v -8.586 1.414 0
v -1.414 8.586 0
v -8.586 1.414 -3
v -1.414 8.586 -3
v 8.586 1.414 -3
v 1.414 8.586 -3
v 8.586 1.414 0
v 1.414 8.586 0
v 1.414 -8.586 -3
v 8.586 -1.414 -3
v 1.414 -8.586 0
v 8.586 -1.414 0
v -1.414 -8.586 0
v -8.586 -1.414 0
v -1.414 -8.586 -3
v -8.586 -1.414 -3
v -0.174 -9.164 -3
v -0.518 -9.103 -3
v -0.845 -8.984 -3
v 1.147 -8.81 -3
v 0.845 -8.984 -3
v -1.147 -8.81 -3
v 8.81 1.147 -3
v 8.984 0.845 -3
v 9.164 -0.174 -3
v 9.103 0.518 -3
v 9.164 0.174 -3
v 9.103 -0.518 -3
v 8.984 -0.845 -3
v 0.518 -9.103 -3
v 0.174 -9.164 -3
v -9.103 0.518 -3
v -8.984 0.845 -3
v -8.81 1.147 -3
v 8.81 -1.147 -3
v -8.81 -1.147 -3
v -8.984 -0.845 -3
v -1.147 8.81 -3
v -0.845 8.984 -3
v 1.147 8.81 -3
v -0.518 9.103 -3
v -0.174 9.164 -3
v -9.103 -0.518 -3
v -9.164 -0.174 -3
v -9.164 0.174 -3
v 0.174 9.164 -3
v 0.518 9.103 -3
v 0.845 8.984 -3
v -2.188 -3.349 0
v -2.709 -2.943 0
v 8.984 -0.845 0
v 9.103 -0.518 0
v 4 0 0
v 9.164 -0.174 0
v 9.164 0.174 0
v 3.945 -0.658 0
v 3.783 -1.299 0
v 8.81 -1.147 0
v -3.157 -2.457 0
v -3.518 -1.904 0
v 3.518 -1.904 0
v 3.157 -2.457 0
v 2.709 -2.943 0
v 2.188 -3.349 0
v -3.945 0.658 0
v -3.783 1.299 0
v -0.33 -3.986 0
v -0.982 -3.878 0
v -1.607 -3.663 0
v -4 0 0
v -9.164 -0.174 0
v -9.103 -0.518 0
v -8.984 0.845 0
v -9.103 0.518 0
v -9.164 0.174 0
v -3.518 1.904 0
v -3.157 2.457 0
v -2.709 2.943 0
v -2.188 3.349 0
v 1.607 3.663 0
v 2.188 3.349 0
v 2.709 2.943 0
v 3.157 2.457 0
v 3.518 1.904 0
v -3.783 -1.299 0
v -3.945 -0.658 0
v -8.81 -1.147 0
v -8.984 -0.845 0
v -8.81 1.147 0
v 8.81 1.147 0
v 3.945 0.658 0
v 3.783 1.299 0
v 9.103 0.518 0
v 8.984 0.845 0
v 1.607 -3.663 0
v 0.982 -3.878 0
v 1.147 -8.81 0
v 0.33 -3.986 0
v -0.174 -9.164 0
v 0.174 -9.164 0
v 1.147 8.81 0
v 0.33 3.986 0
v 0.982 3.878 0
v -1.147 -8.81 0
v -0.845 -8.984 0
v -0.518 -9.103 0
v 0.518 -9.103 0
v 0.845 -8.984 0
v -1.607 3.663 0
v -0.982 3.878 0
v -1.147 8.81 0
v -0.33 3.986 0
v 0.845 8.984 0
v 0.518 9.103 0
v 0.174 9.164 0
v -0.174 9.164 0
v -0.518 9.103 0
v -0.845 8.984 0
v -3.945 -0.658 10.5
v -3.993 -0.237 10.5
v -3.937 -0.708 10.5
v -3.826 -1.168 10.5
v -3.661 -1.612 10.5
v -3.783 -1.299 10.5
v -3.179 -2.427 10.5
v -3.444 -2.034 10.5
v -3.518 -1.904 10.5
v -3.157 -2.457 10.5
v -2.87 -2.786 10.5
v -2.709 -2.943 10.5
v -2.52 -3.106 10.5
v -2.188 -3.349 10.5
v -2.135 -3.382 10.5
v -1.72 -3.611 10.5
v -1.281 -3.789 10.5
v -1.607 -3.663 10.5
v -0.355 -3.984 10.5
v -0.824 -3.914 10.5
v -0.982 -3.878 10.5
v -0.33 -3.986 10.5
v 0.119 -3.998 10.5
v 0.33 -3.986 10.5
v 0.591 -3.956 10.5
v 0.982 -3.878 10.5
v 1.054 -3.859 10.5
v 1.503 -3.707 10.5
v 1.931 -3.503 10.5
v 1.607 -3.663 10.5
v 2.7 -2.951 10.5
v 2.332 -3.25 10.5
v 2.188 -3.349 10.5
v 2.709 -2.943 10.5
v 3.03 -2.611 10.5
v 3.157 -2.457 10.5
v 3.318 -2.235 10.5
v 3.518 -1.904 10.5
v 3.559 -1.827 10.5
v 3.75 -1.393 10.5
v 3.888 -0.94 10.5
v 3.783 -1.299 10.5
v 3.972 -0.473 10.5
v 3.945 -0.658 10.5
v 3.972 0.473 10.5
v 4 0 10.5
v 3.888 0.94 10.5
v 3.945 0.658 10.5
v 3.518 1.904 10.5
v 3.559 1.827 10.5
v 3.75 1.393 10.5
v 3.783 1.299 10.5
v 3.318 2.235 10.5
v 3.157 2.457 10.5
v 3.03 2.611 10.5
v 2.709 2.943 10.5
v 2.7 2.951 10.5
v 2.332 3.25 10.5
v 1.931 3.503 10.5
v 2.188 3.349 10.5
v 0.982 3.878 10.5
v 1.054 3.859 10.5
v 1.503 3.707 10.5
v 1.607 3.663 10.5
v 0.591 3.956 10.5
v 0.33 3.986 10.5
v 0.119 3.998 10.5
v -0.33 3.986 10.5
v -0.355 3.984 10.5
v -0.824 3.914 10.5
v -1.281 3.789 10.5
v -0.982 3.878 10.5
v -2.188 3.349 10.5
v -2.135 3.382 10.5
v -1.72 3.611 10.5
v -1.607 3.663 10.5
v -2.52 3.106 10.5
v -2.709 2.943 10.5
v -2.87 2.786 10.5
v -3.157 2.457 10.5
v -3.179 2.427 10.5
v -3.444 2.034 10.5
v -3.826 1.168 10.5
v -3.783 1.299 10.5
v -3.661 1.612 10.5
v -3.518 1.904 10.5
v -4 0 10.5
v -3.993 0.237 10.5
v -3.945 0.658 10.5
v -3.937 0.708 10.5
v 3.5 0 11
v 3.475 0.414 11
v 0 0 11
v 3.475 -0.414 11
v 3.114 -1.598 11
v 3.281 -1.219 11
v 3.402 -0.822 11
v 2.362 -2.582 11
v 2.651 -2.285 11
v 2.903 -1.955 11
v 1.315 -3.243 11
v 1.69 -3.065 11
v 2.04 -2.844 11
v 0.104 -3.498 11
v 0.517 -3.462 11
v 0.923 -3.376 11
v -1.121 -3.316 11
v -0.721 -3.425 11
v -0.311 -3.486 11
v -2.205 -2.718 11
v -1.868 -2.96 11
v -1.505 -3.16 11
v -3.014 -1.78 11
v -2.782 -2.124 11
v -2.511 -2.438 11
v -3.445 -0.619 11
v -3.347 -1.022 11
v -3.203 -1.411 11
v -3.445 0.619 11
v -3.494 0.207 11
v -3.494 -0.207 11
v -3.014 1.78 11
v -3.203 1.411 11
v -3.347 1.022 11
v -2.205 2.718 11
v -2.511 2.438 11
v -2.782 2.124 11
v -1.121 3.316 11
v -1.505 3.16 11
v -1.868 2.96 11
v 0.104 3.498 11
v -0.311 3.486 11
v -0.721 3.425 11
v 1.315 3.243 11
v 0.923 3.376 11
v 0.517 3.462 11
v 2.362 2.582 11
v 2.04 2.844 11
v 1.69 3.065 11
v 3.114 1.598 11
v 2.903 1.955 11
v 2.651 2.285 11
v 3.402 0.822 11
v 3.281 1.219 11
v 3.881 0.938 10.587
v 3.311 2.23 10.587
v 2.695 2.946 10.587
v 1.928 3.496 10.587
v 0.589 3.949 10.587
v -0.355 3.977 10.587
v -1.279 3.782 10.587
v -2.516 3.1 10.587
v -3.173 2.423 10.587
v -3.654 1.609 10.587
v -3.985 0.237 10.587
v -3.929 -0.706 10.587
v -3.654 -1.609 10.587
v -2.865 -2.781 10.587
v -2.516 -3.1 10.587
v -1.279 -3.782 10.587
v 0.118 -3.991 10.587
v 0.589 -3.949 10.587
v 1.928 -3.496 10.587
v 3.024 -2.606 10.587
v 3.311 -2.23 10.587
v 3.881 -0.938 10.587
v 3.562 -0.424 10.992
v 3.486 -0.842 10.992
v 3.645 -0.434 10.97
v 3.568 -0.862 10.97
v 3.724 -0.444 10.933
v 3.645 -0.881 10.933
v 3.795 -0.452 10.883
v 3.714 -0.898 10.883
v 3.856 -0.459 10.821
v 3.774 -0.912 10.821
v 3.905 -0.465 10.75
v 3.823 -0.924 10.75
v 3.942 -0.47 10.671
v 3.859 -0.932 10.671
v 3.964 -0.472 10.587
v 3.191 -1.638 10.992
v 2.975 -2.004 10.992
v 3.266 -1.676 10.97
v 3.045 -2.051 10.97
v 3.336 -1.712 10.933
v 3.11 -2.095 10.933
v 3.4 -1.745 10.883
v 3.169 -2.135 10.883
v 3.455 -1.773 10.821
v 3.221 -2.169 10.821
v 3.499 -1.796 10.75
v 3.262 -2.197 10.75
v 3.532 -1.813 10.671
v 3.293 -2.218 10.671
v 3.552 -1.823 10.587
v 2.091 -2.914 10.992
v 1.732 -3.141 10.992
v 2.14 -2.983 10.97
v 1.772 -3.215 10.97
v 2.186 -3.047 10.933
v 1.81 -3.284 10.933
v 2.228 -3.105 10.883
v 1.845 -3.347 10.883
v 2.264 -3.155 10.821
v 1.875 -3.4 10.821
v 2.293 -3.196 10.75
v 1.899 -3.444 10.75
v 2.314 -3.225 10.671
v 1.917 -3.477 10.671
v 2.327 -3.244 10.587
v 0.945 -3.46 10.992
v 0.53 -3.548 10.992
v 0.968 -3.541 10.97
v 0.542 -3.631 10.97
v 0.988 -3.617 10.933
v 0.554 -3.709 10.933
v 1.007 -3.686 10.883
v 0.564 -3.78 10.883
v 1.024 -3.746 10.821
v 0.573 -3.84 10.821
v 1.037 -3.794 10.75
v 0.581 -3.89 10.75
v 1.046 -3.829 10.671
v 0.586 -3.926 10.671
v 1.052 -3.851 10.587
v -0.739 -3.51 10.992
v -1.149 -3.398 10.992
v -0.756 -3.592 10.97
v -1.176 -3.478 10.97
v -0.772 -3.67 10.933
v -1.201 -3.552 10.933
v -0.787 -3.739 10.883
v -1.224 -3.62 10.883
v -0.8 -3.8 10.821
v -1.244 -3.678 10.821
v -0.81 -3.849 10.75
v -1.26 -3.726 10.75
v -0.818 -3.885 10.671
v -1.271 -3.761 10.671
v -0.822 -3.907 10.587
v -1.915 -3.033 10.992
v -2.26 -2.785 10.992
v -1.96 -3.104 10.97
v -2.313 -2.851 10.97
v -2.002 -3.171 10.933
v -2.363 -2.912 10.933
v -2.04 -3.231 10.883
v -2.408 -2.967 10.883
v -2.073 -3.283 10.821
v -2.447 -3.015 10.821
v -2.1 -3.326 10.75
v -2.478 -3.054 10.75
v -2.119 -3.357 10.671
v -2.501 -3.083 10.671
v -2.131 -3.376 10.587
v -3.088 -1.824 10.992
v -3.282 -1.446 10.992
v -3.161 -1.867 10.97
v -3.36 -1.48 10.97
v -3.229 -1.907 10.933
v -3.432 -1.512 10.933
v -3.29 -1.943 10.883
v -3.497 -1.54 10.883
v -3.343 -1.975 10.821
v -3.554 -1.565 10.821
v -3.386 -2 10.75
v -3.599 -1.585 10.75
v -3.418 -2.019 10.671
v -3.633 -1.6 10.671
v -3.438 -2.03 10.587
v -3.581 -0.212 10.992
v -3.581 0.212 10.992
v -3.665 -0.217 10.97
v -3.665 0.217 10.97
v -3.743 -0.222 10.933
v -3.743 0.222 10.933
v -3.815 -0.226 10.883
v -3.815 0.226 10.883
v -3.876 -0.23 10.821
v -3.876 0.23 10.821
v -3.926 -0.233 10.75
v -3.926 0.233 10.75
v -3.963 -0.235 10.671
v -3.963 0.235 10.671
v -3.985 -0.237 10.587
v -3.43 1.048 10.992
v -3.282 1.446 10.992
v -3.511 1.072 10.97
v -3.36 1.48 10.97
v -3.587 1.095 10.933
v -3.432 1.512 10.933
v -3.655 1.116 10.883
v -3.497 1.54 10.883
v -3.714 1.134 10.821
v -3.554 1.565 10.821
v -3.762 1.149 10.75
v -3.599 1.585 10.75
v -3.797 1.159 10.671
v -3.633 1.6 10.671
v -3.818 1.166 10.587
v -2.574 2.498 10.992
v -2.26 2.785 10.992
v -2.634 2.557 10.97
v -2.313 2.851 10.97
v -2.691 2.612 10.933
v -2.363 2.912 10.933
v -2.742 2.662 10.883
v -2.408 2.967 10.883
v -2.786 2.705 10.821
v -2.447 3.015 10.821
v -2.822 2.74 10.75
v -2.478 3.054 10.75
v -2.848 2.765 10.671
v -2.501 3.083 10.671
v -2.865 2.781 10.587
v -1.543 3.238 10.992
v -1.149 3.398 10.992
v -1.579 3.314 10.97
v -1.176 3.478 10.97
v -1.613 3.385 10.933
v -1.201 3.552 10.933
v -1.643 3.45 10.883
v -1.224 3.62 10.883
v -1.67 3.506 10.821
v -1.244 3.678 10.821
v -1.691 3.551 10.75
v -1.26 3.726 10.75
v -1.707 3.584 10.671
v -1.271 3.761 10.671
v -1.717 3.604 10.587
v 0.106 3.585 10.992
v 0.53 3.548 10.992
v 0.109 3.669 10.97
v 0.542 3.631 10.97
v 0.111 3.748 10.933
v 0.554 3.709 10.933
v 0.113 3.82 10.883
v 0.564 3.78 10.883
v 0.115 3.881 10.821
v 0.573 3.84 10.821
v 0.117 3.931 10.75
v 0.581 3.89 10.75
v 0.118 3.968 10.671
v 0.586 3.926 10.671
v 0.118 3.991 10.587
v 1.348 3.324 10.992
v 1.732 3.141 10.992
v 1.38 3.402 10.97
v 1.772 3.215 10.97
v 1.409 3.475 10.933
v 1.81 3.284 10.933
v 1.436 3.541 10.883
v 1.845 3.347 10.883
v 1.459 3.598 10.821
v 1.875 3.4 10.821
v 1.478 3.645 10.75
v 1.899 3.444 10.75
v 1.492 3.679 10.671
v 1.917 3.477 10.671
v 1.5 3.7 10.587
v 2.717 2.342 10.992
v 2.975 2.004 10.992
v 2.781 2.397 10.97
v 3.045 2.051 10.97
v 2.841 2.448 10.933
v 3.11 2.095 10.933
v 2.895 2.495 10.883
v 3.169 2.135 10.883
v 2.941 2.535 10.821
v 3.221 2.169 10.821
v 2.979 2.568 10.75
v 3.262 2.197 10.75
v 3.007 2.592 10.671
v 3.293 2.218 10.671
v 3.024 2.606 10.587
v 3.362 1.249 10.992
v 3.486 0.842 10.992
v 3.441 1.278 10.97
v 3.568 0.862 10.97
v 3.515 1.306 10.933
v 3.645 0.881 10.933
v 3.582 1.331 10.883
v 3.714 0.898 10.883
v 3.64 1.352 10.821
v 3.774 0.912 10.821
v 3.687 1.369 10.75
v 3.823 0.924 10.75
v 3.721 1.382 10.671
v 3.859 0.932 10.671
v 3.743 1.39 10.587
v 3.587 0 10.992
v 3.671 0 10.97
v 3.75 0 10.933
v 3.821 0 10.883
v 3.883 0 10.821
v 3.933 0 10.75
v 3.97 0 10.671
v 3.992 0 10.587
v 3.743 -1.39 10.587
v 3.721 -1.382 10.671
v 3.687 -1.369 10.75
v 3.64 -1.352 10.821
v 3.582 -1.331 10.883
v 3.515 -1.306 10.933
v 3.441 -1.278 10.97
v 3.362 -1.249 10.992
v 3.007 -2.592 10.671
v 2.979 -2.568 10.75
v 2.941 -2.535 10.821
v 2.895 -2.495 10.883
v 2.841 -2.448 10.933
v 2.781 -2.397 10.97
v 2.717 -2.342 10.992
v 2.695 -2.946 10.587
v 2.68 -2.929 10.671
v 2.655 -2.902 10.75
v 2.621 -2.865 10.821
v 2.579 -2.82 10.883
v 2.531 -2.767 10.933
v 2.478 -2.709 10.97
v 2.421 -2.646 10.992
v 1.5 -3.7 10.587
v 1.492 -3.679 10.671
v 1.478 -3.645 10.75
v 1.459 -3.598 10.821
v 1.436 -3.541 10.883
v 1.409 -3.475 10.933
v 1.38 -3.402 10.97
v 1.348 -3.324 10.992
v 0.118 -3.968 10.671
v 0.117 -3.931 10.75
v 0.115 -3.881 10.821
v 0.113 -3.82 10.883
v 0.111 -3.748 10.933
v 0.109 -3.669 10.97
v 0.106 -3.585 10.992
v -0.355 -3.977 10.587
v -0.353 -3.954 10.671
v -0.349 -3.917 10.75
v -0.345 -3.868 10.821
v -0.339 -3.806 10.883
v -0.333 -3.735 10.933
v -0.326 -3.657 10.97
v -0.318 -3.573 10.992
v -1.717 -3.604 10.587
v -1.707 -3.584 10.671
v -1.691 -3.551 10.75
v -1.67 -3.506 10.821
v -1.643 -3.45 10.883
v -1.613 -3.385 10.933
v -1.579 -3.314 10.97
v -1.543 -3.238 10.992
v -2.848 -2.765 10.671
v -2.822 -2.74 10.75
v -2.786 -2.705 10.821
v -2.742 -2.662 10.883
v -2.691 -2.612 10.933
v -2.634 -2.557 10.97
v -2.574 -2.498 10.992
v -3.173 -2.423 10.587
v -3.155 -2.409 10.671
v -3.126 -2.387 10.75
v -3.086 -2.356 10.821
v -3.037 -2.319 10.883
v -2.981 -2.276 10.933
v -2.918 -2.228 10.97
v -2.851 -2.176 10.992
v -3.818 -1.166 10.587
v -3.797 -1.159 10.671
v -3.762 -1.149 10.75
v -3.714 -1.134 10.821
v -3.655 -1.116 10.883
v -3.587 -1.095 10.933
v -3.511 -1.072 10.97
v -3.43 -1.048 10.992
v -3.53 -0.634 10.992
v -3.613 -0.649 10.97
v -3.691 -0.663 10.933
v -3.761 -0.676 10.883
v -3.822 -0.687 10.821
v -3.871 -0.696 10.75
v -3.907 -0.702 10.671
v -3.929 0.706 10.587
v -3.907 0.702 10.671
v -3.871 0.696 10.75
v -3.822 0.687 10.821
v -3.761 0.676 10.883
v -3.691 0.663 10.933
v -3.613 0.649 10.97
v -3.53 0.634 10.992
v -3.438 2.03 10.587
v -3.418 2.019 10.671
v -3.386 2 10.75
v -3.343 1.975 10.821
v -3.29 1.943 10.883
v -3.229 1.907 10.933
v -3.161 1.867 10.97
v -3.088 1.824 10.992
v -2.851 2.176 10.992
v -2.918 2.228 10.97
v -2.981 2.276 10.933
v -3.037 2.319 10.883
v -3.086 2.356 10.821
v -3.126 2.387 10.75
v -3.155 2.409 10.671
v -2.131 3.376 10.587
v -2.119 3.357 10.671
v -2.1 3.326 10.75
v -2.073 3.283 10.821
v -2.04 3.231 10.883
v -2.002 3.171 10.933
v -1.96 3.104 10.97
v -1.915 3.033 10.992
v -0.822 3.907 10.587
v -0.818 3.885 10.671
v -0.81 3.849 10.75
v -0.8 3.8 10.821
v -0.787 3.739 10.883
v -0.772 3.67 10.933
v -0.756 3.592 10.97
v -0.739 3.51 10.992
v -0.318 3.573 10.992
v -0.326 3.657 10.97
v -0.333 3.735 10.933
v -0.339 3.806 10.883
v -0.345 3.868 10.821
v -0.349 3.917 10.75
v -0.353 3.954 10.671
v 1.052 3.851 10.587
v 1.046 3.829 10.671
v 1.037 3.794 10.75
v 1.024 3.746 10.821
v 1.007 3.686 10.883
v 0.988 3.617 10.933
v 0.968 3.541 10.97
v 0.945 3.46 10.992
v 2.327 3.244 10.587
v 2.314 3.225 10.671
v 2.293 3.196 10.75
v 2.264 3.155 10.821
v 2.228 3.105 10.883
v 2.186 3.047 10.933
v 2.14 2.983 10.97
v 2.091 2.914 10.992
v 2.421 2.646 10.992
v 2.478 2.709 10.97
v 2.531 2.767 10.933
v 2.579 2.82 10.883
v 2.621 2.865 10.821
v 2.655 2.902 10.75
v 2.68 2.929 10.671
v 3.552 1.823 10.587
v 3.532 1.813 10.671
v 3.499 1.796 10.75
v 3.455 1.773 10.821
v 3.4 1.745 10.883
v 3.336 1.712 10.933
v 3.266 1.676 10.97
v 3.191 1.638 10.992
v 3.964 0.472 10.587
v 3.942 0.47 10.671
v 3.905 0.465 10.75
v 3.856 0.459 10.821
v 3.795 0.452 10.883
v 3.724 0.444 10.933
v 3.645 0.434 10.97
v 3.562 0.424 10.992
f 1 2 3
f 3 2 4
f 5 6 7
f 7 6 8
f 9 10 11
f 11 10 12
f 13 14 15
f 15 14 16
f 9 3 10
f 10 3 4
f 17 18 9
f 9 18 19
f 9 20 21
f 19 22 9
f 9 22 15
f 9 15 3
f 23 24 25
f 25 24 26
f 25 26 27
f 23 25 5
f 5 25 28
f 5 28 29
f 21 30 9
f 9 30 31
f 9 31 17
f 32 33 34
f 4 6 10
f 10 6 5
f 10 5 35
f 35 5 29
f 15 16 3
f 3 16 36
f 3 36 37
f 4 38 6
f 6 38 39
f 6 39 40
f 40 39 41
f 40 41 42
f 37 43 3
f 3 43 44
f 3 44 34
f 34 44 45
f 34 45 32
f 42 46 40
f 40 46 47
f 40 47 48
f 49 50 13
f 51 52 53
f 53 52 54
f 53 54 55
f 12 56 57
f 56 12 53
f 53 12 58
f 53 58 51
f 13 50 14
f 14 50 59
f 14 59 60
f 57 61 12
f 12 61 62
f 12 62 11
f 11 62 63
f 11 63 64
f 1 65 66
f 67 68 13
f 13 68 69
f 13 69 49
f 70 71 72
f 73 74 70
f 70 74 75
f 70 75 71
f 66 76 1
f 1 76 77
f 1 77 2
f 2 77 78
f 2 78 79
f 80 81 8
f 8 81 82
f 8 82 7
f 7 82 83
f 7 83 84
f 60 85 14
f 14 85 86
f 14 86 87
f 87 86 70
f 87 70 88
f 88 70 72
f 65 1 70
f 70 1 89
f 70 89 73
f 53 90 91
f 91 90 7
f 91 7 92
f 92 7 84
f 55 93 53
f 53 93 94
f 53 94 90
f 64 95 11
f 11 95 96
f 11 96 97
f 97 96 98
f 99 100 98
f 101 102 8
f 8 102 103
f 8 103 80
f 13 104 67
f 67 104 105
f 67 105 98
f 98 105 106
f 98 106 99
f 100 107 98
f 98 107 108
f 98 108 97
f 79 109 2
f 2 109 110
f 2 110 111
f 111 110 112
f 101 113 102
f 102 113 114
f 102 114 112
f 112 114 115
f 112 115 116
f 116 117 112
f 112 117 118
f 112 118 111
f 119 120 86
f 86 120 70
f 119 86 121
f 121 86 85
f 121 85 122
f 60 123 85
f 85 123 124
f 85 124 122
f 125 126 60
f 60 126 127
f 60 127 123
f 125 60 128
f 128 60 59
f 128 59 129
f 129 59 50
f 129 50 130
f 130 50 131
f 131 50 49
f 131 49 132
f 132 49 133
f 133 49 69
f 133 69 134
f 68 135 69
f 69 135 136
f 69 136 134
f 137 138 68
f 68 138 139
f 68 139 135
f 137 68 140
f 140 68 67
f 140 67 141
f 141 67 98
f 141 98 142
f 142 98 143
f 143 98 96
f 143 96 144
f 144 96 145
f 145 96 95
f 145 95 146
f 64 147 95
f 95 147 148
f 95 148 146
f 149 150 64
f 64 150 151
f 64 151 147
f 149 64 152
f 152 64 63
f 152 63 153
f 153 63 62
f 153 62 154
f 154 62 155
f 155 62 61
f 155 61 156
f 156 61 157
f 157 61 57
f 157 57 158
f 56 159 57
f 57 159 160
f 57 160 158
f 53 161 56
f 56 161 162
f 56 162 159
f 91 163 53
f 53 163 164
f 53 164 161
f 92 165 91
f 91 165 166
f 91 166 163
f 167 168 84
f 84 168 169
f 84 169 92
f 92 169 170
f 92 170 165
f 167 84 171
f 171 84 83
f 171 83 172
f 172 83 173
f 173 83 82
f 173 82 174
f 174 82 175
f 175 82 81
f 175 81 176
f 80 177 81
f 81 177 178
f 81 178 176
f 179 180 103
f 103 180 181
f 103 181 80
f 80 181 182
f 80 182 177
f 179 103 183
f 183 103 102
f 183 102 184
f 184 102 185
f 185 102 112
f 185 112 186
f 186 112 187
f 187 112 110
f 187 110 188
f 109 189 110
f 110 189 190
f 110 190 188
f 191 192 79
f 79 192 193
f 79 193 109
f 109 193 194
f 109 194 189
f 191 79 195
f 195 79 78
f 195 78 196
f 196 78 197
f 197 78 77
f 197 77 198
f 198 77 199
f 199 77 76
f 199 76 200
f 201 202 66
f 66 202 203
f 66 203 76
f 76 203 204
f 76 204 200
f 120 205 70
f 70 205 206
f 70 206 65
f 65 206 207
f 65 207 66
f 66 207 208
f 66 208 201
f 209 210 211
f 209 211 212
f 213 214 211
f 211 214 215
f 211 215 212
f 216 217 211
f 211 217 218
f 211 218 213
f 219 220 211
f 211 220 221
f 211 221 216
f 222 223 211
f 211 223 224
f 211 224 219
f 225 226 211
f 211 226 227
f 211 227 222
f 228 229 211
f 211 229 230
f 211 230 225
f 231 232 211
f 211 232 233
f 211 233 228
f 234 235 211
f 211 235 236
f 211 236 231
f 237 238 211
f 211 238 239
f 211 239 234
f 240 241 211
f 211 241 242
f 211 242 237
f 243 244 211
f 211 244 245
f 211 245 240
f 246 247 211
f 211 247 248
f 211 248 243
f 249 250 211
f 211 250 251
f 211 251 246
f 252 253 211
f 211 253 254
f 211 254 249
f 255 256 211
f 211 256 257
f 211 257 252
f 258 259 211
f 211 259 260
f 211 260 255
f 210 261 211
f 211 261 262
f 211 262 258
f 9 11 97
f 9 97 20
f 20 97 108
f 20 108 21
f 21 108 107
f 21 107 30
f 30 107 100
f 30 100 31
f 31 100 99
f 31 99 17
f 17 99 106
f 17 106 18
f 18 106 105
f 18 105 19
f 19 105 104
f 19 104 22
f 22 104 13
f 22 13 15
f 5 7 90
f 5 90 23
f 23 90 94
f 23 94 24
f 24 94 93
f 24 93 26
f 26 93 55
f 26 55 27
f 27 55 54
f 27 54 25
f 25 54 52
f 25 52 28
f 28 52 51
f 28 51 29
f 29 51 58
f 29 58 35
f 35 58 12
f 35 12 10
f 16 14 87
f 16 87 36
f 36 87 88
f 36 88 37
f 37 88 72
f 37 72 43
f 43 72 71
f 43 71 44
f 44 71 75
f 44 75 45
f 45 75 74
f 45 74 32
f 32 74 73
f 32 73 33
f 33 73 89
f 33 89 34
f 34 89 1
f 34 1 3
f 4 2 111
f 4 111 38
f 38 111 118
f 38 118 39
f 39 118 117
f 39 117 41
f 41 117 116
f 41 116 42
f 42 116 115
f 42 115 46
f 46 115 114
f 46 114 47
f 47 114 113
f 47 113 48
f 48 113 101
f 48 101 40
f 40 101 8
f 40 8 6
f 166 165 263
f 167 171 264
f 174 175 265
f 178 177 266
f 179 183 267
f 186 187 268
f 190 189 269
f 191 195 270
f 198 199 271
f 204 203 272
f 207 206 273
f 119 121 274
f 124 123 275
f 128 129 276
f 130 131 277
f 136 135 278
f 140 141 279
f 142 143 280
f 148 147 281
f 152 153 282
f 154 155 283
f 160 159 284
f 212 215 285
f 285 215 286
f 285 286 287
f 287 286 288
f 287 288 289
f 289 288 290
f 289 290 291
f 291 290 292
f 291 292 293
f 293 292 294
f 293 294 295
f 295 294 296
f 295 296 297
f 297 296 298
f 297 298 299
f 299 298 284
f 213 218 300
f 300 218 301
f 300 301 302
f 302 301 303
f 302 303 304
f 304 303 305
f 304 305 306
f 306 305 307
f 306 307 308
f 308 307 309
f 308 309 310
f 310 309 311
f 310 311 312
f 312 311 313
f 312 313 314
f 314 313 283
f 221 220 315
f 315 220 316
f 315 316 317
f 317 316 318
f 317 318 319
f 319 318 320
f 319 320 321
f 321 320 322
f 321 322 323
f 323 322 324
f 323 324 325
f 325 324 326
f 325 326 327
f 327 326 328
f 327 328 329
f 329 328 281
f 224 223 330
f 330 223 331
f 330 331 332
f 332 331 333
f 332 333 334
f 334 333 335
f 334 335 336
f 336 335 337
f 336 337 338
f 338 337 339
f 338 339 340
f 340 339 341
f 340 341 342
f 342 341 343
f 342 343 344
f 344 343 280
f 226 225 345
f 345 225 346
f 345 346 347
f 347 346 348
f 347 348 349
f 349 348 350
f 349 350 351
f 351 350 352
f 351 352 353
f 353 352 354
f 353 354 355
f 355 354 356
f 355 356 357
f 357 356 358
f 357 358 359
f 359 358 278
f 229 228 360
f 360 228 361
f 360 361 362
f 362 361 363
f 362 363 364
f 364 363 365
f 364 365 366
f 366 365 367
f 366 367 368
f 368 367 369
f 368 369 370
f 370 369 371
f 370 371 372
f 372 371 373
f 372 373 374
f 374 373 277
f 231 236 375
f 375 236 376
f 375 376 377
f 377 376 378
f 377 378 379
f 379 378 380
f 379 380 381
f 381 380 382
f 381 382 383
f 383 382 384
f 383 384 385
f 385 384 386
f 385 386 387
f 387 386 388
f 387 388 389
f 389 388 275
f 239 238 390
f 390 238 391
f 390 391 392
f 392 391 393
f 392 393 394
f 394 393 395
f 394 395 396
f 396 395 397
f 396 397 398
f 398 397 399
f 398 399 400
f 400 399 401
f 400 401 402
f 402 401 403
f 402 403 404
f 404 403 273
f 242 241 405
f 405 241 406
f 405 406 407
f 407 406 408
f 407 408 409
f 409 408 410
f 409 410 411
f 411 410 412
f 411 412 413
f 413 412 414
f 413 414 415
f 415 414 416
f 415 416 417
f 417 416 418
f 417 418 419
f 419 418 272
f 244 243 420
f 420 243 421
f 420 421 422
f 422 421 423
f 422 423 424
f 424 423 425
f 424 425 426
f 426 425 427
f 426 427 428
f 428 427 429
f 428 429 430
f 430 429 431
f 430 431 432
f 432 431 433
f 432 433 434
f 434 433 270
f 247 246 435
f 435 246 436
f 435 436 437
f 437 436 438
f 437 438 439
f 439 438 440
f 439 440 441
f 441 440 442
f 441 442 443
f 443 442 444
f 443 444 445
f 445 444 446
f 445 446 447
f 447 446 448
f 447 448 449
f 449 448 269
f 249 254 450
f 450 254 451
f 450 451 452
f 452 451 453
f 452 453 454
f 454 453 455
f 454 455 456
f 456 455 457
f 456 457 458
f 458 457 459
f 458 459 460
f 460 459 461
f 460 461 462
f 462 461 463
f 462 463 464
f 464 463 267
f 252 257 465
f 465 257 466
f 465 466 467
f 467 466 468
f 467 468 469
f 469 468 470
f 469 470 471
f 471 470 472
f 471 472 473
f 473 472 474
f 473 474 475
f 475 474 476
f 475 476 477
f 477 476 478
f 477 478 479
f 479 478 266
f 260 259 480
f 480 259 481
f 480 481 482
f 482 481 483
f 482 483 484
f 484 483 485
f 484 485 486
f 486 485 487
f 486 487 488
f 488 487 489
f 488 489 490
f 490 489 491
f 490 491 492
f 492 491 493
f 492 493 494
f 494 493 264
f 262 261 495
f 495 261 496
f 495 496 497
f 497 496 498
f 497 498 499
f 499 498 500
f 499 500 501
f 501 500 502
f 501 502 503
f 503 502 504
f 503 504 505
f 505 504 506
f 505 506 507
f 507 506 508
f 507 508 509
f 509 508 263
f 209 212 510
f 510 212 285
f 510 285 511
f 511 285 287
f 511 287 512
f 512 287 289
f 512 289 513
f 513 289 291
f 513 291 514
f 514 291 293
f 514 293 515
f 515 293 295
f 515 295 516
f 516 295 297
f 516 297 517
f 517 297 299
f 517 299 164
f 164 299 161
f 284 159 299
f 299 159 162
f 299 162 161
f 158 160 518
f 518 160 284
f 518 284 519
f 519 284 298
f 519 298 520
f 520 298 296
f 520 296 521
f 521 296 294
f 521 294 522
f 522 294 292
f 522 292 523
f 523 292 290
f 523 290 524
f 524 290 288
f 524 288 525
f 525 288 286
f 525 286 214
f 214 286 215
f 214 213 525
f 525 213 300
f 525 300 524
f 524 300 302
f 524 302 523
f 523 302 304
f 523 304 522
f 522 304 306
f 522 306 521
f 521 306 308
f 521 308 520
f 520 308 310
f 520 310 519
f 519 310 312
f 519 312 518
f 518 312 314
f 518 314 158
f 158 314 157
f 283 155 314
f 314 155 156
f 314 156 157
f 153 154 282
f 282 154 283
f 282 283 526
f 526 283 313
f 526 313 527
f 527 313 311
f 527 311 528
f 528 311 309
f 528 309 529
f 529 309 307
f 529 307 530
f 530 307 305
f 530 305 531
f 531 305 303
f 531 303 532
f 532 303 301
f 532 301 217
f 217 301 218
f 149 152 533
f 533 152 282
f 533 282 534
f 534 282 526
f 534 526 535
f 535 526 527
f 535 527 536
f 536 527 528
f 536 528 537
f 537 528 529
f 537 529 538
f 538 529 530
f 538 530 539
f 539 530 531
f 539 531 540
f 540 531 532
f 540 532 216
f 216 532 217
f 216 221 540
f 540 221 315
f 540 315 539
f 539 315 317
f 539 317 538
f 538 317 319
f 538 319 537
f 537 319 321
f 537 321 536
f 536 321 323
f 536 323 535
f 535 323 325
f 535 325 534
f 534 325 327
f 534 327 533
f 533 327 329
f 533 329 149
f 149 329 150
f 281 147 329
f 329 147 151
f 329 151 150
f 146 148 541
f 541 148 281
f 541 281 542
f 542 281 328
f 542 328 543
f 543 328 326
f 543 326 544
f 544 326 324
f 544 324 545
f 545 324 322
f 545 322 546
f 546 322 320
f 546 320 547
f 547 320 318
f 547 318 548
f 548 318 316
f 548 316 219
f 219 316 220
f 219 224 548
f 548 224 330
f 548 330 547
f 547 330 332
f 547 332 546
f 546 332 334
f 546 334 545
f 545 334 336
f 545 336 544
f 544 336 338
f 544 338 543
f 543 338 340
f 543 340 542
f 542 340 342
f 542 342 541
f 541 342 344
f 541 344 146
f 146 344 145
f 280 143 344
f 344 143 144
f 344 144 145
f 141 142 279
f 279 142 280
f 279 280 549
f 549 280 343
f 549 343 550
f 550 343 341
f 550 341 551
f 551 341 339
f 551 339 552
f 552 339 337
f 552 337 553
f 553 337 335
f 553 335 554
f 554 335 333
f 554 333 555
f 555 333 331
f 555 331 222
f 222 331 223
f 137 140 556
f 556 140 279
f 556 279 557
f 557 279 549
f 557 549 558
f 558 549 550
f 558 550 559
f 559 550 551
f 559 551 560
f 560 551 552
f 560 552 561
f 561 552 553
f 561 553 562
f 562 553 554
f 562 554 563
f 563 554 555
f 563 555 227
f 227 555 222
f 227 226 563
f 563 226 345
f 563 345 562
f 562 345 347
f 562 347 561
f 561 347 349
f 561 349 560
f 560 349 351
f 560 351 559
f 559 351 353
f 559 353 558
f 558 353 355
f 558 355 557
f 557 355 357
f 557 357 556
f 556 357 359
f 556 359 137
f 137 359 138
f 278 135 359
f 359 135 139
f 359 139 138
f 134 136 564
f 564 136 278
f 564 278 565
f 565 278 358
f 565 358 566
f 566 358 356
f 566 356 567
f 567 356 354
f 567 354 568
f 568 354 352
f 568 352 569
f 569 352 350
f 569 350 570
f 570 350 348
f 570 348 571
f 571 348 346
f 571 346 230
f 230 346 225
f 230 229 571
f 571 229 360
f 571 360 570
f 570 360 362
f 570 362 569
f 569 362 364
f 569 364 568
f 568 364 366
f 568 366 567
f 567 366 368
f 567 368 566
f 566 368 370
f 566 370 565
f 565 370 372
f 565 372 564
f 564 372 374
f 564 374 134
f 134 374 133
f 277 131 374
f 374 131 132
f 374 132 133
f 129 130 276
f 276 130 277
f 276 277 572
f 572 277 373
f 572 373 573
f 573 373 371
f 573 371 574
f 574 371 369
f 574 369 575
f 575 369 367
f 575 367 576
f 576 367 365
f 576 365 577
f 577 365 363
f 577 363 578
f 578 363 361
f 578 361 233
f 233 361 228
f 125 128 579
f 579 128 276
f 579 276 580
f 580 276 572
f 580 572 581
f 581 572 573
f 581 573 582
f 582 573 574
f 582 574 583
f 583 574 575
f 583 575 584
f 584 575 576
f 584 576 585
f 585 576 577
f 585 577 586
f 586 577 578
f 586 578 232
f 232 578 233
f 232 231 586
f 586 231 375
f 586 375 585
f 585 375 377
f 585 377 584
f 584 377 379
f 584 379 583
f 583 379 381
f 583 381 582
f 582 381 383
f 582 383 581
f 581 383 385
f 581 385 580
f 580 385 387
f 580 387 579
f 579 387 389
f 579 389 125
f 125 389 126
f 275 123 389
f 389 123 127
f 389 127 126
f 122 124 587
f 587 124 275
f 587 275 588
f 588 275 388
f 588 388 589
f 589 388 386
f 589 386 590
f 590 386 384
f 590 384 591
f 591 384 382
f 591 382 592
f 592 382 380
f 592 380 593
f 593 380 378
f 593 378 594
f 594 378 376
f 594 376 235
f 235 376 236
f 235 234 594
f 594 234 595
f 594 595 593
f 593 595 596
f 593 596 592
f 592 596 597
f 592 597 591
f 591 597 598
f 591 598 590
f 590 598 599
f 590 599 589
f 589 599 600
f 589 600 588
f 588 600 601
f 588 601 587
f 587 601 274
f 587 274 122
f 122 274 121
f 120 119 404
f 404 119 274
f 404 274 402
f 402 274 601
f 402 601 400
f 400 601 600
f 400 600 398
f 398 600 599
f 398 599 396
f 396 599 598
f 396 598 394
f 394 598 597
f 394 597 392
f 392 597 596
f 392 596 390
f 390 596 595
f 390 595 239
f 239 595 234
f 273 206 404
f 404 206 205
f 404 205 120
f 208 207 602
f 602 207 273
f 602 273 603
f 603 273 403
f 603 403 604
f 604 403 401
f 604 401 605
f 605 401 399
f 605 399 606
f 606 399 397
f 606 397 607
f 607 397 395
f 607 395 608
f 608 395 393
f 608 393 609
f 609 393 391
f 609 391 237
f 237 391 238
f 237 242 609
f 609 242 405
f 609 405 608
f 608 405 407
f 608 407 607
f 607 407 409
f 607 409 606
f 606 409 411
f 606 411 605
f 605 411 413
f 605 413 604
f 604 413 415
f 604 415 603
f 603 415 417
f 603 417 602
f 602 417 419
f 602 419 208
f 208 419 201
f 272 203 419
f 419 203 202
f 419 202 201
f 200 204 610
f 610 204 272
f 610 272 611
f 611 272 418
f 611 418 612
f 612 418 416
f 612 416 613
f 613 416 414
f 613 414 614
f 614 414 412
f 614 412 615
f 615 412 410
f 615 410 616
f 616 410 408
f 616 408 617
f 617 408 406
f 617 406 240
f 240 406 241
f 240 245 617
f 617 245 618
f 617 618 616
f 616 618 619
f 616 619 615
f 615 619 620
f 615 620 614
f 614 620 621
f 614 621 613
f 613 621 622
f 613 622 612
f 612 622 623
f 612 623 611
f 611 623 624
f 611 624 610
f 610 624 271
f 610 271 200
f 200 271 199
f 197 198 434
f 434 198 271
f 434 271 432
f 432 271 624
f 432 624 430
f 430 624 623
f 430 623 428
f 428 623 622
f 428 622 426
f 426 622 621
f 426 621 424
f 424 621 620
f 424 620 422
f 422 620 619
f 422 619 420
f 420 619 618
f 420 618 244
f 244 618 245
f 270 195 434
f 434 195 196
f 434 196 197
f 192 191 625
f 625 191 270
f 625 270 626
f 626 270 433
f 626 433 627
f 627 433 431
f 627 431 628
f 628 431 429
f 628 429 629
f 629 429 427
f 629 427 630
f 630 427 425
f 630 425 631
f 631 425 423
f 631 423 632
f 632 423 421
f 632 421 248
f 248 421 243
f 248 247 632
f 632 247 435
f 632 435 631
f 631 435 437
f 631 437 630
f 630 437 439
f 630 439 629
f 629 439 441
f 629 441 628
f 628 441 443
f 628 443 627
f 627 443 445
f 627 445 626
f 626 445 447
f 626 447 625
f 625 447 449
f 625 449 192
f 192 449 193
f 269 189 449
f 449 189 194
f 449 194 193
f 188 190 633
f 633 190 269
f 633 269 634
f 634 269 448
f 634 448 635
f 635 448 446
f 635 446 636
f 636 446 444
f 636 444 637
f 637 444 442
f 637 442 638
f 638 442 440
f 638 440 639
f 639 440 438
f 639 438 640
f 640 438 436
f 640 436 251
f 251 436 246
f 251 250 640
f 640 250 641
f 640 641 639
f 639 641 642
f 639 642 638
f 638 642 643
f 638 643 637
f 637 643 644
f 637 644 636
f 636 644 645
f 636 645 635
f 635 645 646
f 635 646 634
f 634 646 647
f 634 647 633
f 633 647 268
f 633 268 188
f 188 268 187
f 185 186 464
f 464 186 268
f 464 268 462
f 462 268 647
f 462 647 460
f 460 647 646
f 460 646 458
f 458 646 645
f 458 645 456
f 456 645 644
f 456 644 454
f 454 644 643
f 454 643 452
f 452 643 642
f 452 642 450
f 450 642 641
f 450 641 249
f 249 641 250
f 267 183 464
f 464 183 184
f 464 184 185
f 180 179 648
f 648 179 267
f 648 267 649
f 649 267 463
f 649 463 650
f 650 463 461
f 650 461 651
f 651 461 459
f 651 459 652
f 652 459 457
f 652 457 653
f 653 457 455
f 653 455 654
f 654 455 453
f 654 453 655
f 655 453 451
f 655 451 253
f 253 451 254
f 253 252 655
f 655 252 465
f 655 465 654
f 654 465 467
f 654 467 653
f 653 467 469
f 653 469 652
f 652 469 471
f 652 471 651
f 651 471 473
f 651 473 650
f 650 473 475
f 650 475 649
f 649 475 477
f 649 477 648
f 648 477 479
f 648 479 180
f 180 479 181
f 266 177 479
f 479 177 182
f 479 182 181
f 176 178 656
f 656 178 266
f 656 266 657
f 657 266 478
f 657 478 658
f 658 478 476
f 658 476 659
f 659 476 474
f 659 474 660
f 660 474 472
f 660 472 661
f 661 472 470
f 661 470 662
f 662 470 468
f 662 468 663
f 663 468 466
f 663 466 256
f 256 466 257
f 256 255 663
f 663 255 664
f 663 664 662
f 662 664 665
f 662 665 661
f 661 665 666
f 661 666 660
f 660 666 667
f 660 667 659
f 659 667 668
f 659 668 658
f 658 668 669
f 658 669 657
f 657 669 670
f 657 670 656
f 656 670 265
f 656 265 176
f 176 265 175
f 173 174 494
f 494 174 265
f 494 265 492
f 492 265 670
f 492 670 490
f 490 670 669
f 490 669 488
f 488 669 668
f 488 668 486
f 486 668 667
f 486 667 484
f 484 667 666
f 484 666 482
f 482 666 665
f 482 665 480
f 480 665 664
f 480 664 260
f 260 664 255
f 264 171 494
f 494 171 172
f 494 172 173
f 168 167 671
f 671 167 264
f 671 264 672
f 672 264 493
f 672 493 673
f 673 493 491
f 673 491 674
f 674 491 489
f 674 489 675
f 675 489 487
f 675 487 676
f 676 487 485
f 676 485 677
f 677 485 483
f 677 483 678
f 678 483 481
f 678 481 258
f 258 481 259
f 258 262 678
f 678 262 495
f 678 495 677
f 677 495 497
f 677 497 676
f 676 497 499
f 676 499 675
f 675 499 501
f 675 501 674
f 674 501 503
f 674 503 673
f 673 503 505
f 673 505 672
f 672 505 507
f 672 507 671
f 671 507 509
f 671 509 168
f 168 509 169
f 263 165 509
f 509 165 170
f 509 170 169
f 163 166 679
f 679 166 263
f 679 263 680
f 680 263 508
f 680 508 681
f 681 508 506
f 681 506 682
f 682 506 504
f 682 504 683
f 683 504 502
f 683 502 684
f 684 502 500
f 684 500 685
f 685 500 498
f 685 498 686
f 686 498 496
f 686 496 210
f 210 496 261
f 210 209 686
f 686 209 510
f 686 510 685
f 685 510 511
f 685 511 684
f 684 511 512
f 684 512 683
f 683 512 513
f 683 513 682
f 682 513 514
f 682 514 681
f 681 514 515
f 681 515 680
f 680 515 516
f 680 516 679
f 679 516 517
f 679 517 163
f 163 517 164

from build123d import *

# Parameters (mm, degrees)
BOSS_EXTRUDE1_DEPTH = 3
SKETCH2_R           = 4
BOSS_EXTRUDE2_DEPTH = 11
FILLET1_R           = 2
FILLET2_R           = 0.5


with BuildPart() as part:
    # Sketch1 → Boss-Extrude1 (new body)
    with BuildSketch(Plane.XY):
        Polygon((0, 10), (10, 0), (0, -10), (-10, 0), align=None)
    extrude(amount=-BOSS_EXTRUDE1_DEPTH)

    # Sketch2 → Boss-Extrude2 (add)
    with BuildSketch(Plane.XY):
        Circle(SKETCH2_R)
    extrude(amount=BOSS_EXTRUDE2_DEPTH)

    # Fillet1
    fillet1_edges = [part.edges().sort_by_distance(p)[0] for p in [
        (0, 10, -1.5),
        (10, 0, -1.5),
        (0, -10, -1.5),
        (-10, 0, -1.5),
    ]]
    fillet(fillet1_edges, radius=FILLET1_R)

    # Fillet2
    fillet2_edges = [part.edges().sort_by_distance(p)[0] for p in [
        (-4, 0, 11),
    ]]
    fillet(fillet2_edges, radius=FILLET2_R)


solid = part.part
